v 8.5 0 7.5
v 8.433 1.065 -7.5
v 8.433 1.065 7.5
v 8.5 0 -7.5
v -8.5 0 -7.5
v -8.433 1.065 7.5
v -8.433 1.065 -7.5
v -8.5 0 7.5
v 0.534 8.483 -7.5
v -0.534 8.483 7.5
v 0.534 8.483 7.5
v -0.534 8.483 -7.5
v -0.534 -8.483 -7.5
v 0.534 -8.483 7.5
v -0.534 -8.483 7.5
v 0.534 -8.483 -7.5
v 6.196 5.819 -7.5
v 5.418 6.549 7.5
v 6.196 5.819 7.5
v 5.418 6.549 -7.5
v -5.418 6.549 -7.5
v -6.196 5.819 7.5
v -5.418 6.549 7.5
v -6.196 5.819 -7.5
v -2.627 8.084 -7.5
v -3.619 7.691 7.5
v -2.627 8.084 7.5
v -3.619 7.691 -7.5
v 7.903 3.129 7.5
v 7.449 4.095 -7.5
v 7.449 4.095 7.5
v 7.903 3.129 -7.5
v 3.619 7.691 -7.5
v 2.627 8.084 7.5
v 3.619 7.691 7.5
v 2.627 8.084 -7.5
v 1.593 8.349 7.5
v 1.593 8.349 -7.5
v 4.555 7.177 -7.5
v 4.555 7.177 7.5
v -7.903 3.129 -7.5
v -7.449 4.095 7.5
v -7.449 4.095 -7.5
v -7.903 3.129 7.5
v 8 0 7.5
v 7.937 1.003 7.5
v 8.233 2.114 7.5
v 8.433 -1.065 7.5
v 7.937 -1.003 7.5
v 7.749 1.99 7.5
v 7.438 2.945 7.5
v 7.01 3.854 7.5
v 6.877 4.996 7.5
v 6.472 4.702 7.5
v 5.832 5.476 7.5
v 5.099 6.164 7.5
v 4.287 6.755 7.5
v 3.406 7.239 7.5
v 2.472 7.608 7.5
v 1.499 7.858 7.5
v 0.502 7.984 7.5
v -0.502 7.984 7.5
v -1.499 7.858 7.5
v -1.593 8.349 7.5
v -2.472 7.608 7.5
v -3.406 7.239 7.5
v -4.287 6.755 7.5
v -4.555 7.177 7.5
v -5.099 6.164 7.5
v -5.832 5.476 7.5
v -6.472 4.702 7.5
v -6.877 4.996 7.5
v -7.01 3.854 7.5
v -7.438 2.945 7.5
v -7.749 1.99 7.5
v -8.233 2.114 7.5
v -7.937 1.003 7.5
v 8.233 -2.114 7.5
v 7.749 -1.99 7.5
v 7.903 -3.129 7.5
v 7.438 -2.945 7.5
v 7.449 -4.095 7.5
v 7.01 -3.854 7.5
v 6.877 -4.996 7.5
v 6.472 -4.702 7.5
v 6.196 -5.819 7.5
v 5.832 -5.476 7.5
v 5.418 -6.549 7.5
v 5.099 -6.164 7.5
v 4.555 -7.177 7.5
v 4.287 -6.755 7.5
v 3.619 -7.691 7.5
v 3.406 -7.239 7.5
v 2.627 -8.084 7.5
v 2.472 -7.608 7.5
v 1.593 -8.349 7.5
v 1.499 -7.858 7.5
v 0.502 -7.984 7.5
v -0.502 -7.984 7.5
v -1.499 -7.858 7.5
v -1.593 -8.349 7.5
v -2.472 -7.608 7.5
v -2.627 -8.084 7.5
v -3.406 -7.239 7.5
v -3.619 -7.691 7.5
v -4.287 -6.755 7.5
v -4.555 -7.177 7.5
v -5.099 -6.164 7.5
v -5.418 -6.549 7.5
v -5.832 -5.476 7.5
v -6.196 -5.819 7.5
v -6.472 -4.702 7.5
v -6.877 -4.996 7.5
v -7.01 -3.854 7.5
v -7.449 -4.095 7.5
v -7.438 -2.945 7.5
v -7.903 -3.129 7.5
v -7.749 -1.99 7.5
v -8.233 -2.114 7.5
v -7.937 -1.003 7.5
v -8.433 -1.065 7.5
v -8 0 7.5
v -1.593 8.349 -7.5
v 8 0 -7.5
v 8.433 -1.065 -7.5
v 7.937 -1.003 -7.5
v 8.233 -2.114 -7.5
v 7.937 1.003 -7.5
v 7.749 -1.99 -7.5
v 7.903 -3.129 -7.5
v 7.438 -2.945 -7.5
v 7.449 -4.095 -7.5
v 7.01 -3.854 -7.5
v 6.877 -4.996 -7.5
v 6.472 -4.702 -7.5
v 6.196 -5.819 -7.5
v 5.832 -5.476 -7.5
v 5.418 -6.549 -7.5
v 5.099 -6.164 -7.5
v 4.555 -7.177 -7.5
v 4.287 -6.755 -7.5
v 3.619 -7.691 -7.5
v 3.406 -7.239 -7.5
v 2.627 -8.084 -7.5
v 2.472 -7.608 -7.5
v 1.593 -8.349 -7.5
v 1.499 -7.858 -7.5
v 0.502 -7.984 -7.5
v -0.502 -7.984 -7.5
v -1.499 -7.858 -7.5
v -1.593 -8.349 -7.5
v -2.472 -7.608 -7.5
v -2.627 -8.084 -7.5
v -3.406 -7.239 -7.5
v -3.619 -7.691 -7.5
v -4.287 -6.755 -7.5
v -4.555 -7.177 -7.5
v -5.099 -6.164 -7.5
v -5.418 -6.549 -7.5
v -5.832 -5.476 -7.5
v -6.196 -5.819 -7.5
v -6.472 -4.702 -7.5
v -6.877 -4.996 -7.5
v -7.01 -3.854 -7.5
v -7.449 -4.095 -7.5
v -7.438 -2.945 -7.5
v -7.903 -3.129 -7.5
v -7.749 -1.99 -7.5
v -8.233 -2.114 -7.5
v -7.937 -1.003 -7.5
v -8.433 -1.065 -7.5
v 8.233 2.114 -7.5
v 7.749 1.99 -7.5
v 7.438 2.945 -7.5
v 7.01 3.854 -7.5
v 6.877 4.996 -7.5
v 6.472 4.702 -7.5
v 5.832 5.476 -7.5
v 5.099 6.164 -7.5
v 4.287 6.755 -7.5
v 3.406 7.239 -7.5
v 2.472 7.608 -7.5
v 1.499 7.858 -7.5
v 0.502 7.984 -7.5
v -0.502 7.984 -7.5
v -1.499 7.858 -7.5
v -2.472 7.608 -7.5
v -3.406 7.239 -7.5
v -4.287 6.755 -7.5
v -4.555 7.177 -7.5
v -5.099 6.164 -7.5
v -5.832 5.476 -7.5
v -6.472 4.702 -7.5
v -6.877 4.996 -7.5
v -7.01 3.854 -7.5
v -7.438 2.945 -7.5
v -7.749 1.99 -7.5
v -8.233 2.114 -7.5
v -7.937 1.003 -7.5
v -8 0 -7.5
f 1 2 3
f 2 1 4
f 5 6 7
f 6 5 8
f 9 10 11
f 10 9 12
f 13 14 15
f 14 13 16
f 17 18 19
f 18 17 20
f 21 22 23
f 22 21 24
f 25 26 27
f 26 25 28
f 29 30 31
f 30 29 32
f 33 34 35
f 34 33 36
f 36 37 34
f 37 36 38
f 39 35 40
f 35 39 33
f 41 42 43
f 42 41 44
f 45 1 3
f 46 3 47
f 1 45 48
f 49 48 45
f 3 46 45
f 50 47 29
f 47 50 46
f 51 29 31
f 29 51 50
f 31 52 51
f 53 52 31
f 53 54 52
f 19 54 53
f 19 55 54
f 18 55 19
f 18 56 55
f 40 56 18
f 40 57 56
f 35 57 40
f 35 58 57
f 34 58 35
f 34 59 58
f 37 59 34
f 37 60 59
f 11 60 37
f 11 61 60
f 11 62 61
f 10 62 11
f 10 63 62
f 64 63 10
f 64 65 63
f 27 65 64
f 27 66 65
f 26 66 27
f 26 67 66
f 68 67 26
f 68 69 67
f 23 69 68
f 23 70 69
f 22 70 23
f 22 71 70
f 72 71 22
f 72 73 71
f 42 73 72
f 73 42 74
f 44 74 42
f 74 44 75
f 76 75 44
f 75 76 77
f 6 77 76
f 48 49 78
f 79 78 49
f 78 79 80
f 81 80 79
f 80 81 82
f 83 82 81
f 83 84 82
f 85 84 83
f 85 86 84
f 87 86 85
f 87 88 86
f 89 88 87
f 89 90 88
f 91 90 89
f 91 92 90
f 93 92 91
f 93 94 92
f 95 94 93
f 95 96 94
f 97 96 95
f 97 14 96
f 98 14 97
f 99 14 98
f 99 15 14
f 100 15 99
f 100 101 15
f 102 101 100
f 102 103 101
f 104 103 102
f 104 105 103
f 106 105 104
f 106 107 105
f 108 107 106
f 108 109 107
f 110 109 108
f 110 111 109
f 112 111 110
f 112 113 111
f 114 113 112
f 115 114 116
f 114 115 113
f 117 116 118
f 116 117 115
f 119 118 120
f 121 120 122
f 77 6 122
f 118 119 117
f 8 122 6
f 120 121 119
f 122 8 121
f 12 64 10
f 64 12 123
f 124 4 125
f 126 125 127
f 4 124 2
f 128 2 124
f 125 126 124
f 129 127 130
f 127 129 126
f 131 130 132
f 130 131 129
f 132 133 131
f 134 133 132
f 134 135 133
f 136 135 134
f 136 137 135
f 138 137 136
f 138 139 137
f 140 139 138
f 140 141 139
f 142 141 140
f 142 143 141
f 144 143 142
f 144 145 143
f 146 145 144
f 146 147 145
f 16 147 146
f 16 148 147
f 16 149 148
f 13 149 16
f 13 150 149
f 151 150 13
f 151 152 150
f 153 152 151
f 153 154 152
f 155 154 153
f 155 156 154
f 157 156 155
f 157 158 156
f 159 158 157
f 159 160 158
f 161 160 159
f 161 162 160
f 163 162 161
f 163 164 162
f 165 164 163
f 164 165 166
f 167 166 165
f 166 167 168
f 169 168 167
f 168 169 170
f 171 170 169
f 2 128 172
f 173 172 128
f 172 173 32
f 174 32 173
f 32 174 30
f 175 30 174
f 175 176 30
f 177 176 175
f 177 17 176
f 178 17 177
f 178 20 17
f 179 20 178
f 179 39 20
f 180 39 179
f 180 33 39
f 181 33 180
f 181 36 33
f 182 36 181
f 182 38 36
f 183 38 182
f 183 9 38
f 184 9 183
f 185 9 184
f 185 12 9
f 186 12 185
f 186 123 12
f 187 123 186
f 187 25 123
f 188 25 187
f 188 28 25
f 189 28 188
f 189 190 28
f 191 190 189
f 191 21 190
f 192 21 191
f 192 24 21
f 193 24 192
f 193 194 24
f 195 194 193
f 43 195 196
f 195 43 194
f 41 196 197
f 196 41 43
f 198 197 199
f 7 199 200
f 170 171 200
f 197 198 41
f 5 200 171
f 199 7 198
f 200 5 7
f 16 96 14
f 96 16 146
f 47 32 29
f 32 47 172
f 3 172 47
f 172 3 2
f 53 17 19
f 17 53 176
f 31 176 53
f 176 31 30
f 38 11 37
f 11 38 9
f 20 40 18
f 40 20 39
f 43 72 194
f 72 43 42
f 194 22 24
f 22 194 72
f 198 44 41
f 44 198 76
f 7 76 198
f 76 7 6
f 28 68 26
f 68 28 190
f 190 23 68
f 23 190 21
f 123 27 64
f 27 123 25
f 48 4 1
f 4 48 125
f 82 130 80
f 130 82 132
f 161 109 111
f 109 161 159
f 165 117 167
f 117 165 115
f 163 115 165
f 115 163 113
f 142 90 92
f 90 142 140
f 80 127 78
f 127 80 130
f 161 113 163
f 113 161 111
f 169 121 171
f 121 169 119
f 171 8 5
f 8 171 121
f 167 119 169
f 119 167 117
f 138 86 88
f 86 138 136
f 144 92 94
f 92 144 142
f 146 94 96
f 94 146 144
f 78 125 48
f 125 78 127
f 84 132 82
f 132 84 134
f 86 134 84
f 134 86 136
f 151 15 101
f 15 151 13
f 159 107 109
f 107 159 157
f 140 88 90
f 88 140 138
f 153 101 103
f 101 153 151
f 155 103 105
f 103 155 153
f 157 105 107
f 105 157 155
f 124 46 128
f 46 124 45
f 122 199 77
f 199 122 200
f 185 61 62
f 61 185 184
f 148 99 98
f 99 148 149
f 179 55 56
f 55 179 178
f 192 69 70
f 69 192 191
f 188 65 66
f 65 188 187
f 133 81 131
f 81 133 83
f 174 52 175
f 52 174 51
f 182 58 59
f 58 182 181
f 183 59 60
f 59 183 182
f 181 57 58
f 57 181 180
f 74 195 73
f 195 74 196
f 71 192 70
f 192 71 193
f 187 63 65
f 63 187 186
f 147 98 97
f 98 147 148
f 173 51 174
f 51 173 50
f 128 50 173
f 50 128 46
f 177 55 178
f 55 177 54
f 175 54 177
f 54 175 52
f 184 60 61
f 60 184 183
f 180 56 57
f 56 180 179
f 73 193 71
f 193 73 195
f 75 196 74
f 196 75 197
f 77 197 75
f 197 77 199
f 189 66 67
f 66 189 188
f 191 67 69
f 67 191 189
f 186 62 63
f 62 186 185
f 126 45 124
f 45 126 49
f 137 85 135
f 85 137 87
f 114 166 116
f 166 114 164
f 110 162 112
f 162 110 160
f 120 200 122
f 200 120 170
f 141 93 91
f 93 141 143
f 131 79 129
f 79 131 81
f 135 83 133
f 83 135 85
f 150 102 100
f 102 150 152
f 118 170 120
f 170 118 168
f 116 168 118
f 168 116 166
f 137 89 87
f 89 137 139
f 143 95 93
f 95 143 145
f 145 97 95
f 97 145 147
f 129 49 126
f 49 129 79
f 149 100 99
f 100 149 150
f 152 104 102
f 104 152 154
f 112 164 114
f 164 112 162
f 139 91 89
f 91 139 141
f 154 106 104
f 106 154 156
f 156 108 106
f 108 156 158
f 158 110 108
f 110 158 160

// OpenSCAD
$fn = 50;


difference() {
	union() {
		translate(v = [0, 0, -7.5000000000]) {
			cylinder(h = 15, r = 8.5000000000);
		}
	}
	union() {
		translate(v = [0, 0, -100.0000000000]) {
			cylinder(h = 200, r = 8);
		}
	}
}
